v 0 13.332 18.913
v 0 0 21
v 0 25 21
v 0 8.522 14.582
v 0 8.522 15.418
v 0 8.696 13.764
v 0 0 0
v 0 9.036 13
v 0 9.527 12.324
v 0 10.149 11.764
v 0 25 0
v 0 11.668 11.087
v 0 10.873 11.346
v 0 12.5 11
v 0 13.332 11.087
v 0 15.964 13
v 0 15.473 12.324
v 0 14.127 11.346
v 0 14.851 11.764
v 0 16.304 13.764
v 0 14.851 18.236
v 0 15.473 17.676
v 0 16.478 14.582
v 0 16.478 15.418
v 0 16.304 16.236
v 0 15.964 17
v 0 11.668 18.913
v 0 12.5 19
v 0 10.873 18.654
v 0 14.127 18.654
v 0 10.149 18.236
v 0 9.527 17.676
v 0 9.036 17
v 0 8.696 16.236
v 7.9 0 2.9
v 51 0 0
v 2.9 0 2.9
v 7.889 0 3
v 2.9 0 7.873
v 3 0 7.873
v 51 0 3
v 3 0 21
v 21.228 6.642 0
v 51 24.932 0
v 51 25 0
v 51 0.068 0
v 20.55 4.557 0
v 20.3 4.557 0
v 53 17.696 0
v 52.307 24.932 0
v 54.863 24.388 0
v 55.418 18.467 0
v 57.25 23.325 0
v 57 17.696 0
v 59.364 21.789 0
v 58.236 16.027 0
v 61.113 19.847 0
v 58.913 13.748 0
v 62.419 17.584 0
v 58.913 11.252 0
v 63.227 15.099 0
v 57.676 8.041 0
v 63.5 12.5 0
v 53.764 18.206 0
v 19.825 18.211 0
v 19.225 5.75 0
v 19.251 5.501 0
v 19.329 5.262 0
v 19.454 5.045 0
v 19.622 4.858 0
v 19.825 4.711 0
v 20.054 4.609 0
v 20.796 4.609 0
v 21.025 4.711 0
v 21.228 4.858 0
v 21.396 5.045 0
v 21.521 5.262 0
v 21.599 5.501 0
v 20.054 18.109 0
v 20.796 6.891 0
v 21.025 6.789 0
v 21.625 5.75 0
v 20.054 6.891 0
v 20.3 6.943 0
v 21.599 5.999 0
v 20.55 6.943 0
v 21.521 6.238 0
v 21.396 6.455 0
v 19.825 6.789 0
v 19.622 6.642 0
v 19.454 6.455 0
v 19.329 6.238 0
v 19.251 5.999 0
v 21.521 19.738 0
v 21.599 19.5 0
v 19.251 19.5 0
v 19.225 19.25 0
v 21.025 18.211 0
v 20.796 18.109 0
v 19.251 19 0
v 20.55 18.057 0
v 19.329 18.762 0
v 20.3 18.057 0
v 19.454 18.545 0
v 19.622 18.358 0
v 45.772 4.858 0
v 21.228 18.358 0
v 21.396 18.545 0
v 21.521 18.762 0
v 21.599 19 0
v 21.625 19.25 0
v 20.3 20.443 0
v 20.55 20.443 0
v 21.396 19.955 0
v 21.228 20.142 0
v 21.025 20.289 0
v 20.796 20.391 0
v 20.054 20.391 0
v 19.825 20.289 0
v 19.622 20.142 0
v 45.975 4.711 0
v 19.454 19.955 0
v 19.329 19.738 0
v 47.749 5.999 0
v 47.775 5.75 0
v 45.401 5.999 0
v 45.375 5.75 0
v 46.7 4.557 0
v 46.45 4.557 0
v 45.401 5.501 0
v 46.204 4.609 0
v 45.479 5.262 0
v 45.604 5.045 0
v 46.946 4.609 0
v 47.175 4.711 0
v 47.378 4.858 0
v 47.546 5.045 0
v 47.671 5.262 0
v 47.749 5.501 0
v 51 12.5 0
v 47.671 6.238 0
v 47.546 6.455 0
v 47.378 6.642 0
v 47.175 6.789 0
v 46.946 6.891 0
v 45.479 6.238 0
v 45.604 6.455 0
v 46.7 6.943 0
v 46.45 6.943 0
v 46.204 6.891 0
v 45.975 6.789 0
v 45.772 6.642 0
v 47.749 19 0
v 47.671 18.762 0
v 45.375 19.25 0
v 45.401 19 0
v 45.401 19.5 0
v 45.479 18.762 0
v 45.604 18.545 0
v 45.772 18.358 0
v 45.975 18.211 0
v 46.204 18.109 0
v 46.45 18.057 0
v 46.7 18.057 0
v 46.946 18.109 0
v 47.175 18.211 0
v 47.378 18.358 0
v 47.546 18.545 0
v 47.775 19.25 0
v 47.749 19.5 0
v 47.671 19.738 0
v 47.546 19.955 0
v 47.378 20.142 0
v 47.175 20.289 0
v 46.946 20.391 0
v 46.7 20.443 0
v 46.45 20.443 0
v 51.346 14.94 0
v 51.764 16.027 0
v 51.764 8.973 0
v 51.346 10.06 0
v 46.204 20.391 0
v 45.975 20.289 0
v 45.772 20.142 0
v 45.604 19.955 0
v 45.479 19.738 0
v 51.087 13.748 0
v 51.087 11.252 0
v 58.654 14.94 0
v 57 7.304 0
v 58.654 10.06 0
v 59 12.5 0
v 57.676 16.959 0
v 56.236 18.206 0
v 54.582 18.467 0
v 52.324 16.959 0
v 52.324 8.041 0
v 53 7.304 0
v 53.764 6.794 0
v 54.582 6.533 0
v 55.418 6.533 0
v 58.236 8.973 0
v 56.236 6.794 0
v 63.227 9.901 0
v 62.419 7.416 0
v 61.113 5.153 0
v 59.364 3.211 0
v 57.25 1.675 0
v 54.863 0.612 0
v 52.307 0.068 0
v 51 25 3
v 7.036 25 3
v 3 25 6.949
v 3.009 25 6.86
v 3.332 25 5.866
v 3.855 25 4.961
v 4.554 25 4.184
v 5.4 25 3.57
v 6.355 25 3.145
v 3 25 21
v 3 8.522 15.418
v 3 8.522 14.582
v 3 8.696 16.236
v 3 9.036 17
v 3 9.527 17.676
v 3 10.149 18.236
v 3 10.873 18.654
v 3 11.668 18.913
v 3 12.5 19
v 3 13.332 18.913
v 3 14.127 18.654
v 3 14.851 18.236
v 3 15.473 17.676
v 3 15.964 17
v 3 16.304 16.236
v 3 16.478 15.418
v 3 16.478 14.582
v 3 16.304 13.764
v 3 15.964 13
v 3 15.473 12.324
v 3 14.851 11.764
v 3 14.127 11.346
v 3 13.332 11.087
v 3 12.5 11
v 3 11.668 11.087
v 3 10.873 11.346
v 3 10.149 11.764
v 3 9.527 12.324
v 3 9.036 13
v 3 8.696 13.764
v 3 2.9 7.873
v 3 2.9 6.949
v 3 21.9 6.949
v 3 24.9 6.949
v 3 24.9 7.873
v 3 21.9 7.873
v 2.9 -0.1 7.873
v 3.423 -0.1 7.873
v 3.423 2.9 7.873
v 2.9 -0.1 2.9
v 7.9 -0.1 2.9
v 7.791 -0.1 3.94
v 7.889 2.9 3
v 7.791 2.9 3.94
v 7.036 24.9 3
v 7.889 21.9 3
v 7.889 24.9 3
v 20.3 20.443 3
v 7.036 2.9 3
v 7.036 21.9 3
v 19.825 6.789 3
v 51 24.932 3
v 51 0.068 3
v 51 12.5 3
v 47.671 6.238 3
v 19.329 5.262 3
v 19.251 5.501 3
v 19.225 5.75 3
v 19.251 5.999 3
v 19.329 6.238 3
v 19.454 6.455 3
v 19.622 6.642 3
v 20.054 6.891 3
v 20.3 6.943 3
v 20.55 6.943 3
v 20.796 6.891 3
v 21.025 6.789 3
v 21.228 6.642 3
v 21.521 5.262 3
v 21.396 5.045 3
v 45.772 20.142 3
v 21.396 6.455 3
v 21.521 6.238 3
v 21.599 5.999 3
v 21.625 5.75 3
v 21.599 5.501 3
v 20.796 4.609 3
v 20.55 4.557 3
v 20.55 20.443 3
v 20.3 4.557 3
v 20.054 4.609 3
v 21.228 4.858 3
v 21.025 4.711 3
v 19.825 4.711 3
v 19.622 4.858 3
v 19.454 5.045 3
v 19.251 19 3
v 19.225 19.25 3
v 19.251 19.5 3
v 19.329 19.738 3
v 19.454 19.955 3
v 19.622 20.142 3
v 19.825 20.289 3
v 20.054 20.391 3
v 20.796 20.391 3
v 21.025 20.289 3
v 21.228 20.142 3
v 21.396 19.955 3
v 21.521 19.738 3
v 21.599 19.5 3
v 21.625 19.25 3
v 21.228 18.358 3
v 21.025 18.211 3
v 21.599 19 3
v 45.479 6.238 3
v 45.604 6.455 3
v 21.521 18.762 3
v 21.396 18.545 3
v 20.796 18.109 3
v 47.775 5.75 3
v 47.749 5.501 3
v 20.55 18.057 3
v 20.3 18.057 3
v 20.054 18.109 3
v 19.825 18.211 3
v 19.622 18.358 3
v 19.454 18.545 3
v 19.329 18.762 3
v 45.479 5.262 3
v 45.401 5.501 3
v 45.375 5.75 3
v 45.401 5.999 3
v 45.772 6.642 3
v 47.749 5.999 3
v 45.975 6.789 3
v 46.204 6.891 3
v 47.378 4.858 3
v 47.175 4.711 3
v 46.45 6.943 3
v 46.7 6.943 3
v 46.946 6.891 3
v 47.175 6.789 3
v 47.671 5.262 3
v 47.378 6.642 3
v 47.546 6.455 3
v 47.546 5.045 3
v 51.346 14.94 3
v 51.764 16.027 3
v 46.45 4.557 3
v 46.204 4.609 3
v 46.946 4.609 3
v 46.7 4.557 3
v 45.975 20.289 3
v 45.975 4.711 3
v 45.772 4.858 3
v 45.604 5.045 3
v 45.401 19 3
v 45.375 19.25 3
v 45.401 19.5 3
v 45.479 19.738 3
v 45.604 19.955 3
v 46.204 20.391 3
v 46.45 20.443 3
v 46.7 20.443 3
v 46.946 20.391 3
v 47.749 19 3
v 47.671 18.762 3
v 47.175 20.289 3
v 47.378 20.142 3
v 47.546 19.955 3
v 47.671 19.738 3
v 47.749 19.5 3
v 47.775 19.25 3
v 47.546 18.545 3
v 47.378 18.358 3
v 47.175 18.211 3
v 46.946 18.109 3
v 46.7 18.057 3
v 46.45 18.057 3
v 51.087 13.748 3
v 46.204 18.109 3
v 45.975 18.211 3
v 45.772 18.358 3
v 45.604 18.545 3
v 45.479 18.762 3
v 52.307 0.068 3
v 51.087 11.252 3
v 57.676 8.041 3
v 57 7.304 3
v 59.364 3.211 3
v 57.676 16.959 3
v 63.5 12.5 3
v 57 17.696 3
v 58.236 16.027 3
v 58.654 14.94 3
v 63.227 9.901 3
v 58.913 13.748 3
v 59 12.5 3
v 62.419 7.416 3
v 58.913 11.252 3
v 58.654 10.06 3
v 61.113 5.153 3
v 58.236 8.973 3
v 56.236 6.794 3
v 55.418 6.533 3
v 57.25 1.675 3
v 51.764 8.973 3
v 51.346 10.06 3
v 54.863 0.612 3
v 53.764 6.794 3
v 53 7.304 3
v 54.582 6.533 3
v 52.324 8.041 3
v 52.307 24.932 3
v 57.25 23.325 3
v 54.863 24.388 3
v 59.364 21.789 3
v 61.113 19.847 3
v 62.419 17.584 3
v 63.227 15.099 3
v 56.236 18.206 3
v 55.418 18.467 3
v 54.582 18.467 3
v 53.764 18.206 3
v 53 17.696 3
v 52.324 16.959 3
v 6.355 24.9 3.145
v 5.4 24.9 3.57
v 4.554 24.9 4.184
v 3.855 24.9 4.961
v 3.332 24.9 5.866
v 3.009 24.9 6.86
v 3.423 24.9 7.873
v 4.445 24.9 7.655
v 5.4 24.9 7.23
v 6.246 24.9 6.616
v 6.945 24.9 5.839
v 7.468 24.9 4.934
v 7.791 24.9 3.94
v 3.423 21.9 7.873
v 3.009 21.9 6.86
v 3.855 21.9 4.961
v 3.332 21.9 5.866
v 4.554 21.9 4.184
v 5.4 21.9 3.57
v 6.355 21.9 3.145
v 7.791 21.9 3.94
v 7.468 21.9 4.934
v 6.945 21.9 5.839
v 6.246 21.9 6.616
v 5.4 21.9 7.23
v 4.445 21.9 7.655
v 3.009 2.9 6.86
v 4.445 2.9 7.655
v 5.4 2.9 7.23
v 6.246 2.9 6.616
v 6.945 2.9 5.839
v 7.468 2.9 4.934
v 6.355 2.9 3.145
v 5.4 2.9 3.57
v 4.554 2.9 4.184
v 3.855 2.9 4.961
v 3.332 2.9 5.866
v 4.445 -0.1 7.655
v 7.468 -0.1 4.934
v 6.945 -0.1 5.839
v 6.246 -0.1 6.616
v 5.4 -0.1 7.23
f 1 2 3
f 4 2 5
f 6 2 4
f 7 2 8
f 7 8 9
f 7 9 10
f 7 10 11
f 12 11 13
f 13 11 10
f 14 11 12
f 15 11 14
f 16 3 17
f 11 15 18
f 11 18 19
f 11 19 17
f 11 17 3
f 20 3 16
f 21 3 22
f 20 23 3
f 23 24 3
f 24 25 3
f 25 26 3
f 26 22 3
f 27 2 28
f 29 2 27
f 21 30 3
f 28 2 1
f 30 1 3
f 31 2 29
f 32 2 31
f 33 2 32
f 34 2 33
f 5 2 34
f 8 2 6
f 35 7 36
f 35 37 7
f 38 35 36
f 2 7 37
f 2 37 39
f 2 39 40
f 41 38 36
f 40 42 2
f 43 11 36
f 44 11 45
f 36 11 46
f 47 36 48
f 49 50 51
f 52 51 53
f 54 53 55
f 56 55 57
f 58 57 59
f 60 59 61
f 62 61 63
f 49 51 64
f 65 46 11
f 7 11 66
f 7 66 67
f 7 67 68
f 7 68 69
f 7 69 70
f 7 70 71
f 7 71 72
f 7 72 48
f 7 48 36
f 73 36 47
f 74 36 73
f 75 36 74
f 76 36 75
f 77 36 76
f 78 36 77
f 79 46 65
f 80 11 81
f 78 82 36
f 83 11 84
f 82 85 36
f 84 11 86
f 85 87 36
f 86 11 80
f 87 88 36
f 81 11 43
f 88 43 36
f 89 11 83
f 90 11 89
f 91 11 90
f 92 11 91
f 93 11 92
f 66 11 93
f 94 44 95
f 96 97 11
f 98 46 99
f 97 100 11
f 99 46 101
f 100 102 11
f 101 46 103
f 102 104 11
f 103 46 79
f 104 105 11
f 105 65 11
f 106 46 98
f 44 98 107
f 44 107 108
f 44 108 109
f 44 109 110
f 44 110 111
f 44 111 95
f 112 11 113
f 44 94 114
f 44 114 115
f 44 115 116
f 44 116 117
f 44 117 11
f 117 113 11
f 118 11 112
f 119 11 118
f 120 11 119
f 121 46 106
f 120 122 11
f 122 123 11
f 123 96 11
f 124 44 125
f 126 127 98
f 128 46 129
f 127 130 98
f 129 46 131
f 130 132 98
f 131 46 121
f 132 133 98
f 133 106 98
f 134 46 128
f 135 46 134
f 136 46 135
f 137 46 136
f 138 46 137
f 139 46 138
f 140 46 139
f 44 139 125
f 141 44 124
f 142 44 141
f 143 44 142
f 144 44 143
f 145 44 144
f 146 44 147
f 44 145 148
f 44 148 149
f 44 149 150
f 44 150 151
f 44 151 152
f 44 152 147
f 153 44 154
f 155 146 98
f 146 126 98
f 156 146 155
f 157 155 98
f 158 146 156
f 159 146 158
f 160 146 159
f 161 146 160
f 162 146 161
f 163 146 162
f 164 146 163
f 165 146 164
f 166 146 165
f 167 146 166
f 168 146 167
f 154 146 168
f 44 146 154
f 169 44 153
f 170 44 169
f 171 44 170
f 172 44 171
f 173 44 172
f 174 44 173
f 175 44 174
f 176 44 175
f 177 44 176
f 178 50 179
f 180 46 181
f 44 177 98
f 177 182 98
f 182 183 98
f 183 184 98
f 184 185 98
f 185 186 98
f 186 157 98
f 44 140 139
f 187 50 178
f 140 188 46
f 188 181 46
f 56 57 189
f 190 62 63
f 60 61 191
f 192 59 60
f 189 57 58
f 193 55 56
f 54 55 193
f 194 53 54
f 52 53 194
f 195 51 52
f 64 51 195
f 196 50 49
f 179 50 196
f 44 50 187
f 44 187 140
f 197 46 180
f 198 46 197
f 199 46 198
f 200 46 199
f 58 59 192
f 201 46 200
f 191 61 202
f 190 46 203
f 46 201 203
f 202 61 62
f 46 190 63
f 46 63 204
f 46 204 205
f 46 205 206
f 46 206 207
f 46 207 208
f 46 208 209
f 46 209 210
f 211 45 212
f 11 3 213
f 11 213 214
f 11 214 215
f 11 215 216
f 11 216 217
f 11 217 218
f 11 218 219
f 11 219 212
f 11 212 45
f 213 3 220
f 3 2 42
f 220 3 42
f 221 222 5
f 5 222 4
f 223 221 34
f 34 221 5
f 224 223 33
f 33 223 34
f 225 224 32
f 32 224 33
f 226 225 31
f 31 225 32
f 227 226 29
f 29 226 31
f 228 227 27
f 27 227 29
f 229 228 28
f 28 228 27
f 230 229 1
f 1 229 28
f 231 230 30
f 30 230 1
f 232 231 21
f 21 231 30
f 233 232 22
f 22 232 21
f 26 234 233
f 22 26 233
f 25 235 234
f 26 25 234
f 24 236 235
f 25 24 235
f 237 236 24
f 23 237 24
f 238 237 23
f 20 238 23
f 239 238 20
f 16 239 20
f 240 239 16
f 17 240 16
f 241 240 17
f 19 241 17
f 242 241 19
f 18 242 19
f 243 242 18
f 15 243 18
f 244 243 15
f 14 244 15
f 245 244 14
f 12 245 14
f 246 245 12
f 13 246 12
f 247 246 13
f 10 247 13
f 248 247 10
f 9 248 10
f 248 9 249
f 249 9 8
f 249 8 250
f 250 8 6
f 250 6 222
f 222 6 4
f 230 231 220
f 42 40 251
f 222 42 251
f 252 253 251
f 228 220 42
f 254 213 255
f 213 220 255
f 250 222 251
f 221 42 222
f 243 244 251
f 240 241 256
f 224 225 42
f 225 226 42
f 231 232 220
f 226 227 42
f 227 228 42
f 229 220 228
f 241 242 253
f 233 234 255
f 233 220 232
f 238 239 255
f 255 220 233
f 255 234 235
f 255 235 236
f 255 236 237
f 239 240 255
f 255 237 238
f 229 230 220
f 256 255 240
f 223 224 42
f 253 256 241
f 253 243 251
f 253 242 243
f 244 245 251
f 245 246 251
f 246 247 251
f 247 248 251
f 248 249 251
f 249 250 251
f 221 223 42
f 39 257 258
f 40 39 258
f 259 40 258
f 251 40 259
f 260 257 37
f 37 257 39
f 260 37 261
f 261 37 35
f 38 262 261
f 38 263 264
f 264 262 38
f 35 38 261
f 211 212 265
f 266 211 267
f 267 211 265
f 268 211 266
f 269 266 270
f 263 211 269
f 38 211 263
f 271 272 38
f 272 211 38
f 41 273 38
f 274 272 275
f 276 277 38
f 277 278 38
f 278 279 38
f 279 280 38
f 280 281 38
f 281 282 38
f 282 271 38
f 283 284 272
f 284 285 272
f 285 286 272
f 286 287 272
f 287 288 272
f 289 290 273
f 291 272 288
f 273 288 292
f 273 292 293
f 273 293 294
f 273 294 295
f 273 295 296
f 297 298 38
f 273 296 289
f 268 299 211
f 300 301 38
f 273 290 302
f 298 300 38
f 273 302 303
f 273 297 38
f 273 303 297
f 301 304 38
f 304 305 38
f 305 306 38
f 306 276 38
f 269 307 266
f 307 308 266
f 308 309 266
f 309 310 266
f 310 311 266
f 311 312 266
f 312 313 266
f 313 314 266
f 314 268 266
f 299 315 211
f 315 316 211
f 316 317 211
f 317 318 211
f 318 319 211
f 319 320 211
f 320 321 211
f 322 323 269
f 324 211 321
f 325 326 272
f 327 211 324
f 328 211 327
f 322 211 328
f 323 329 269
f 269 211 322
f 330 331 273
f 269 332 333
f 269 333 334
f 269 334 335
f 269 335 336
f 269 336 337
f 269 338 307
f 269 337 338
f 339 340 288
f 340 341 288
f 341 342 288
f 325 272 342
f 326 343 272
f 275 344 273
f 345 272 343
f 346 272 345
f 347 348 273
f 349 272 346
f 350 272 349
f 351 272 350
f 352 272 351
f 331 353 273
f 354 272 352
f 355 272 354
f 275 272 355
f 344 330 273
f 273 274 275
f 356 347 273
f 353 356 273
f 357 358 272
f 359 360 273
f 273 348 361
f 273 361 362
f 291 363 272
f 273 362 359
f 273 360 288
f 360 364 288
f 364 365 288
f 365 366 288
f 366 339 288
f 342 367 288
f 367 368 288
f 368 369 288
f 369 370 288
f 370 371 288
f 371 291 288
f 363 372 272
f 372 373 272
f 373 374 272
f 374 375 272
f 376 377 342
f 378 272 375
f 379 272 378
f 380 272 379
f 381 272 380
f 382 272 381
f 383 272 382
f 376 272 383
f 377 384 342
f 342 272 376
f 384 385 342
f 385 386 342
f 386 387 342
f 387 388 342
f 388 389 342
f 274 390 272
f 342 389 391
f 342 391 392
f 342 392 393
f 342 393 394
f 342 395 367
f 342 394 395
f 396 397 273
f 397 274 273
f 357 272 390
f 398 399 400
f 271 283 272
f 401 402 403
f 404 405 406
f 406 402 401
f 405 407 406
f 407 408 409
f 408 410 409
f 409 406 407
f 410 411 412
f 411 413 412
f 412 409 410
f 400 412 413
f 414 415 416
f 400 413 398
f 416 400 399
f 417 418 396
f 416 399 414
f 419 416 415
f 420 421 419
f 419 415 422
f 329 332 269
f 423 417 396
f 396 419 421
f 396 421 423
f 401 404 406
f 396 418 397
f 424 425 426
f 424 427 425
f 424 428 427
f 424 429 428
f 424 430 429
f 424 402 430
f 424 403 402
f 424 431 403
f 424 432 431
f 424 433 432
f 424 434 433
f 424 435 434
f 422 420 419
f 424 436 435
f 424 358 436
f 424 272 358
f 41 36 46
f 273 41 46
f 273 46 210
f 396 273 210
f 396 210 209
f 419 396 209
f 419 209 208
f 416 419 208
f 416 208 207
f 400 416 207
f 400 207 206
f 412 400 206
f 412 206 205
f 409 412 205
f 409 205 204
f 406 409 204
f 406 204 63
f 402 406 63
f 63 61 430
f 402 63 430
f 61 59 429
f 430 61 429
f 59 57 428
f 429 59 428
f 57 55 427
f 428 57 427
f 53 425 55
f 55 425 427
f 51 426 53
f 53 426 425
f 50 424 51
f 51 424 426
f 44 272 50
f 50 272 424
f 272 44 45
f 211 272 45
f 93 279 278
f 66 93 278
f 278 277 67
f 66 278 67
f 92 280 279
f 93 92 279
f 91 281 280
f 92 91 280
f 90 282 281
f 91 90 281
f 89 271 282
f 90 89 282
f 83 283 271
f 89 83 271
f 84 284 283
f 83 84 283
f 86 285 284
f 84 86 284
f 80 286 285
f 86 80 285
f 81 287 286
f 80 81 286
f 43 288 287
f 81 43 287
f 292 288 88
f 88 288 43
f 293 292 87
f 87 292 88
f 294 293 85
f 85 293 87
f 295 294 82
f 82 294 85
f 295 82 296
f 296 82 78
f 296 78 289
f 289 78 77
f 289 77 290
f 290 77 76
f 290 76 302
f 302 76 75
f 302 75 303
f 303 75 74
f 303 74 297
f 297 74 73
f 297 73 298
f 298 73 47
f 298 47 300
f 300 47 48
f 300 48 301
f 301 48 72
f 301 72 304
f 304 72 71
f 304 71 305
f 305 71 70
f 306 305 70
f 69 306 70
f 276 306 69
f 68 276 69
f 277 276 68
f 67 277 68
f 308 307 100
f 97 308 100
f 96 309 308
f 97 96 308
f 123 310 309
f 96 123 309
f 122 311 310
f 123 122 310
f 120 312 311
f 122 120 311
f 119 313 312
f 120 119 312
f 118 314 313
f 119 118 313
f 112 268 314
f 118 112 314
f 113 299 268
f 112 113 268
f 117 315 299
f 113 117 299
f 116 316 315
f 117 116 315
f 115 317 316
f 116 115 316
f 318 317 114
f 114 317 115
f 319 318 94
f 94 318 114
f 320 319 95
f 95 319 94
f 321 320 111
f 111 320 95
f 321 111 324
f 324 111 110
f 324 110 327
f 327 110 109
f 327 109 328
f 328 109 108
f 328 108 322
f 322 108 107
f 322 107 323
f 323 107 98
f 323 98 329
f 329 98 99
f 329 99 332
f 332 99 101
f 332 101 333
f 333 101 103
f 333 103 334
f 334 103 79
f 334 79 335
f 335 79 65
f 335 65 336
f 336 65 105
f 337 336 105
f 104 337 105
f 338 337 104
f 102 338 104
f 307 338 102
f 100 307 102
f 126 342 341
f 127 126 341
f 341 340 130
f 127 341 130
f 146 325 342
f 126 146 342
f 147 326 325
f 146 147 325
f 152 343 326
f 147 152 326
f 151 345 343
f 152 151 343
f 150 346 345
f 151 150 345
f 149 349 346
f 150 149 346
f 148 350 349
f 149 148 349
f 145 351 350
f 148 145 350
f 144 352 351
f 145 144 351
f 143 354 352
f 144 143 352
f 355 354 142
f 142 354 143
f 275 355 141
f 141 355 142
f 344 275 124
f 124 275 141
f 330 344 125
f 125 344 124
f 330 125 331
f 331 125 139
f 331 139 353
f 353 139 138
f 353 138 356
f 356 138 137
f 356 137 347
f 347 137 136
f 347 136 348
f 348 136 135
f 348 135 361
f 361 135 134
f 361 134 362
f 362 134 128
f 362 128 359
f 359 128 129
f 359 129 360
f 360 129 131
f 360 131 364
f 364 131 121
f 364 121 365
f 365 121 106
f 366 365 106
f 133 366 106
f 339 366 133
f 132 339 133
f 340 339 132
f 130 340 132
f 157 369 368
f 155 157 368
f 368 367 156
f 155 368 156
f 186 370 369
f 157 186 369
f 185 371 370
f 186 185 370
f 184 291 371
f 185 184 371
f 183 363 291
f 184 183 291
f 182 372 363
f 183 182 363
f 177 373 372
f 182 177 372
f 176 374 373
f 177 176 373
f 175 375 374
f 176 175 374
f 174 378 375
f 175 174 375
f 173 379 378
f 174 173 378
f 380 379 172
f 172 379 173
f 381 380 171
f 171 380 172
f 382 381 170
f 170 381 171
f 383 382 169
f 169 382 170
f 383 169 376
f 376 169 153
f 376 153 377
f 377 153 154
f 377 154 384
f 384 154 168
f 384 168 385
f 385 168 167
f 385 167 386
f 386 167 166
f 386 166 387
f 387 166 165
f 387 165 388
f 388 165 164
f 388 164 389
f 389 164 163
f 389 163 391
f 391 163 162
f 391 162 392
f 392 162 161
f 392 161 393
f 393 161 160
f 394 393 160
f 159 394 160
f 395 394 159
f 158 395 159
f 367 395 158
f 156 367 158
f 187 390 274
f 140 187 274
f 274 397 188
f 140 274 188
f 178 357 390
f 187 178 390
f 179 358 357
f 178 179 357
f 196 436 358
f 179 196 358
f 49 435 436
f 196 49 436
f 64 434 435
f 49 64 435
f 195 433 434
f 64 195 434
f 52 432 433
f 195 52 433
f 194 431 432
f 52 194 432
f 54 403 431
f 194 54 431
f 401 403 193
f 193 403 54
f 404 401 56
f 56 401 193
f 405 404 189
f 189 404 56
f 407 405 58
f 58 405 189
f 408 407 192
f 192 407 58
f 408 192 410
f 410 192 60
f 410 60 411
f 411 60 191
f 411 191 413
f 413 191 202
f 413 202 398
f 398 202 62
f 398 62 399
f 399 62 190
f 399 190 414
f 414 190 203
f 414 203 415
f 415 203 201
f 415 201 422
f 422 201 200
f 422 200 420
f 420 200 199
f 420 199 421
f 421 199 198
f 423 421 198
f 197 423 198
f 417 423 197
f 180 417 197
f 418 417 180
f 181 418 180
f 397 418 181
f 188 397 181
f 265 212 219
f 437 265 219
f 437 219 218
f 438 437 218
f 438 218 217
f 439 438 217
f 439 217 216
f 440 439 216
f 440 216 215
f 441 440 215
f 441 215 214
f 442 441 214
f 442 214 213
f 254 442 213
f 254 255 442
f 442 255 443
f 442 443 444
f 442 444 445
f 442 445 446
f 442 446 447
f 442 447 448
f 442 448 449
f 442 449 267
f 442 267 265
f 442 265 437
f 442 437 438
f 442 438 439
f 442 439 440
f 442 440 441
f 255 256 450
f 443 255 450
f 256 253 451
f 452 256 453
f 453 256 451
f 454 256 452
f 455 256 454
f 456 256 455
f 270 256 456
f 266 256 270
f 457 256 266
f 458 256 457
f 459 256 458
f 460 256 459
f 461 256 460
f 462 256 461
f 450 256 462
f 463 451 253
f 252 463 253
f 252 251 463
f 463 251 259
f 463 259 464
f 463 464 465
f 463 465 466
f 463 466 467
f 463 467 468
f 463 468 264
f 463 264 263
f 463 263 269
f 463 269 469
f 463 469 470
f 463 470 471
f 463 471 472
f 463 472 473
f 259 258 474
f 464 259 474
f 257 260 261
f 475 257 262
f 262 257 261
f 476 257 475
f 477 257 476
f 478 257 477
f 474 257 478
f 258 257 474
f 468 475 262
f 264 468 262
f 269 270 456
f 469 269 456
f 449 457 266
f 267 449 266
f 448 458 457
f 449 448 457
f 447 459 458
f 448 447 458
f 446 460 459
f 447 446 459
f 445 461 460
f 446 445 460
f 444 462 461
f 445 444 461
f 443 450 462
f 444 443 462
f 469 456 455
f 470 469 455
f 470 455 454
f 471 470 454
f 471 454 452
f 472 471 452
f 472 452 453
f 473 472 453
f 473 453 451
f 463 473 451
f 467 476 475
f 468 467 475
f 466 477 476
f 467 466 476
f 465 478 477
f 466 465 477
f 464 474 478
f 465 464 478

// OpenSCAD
// Main body:
THICKNESS = 3;
WIGGLE_ROOM = 1;
WIDTH_X = 25 /* width of Trinket */;
WIDTH_Y = 31 /* length of Trinket */ + 16 /* length of power jack */ + WIGGLE_ROOM + THICKNESS;

// Back panel with power jack
HEIGHT = 18 + THICKNESS;
CORNER_RADIUS = 5;

DETAIL = 30;

module base()
{
    union()
    {
        // base
        cube(size = [WIDTH_Y, WIDTH_X, THICKNESS]);
        translate(v = [WIDTH_Y, WIDTH_X / 2, 0])
            cylinder(r = WIDTH_X / 2, h = THICKNESS, $fn = DETAIL);
        // back
        cube(size = [THICKNESS, WIDTH_X, HEIGHT]);
        // strain-relief corner
        translate(v = [THICKNESS - 0.1, 0, THICKNESS - 0.1])
            difference()
            {
                cube(size = [CORNER_RADIUS, WIDTH_X, CORNER_RADIUS]);
                translate(v = [CORNER_RADIUS, WIDTH_X + 1, CORNER_RADIUS])
                    rotate(a = [90, 0, 0])
                        cylinder(r = CORNER_RADIUS, h = WIDTH_X + 2, $fn = DETAIL);
            }
        translate(v = [THICKNESS - 0.1, THICKNESS - 0.1, THICKNESS - 0.1])
            rotate(a = [90, 0, 0])
                intersection()
                {
                    cylinder(r = 5, h = THICKNESS, $fn = DETAIL);
                    translate(v = [0, 0, -1])
                        cube(size = [5, 5, THICKNESS + 2]);
                }
        translate(v = [THICKNESS - 0.1, WIDTH_X - 0.1, THICKNESS - 0.1])
            rotate(a = [90, 0, 0])
                intersection()
                {
                    cylinder(r = 5, h = THICKNESS, $fn = DETAIL);
                    translate(v = [0, 0, -1])
                        cube(size = [5, 5, THICKNESS + 2]);
                }
    }
}

module trinket_holes()
{
    translate(v = [-13.075, 6.75, -1])
        cylinder(h = HEIGHT, r = 1.2, $fn = DETAIL);
    translate(v = [-13.075, -6.75, -1])
        cylinder(h = HEIGHT, r = 1.2, $fn = DETAIL);
    translate(v = [13.075, 6.75, -1])
        cylinder(h = HEIGHT, r = 1.2, $fn = DETAIL);
    translate(v = [13.075, -6.75, -1])
        cylinder(h = HEIGHT, r = 1.2, $fn = DETAIL);
}

difference()
{
    base();
    translate(v = [WIDTH_Y / 2 + THICKNESS + WIGGLE_ROOM + 4, WIDTH_X / 2, -1])
        trinket_holes();
    // hole for power jack
    translate(v = [-1, WIDTH_X / 2, HEIGHT - 4 - 2])
        rotate(a = [0, 90, 0])
            cylinder(r = 4, h = THICKNESS + 2, $fn = DETAIL);
    // hole for securing wires
    translate(v = [WIDTH_Y + 4, WIDTH_X / 2, -1])
        scale(v = [1, 1.5, 1])
        cylinder(r = 4, h = THICKNESS + 2, $fn = DETAIL);
}
